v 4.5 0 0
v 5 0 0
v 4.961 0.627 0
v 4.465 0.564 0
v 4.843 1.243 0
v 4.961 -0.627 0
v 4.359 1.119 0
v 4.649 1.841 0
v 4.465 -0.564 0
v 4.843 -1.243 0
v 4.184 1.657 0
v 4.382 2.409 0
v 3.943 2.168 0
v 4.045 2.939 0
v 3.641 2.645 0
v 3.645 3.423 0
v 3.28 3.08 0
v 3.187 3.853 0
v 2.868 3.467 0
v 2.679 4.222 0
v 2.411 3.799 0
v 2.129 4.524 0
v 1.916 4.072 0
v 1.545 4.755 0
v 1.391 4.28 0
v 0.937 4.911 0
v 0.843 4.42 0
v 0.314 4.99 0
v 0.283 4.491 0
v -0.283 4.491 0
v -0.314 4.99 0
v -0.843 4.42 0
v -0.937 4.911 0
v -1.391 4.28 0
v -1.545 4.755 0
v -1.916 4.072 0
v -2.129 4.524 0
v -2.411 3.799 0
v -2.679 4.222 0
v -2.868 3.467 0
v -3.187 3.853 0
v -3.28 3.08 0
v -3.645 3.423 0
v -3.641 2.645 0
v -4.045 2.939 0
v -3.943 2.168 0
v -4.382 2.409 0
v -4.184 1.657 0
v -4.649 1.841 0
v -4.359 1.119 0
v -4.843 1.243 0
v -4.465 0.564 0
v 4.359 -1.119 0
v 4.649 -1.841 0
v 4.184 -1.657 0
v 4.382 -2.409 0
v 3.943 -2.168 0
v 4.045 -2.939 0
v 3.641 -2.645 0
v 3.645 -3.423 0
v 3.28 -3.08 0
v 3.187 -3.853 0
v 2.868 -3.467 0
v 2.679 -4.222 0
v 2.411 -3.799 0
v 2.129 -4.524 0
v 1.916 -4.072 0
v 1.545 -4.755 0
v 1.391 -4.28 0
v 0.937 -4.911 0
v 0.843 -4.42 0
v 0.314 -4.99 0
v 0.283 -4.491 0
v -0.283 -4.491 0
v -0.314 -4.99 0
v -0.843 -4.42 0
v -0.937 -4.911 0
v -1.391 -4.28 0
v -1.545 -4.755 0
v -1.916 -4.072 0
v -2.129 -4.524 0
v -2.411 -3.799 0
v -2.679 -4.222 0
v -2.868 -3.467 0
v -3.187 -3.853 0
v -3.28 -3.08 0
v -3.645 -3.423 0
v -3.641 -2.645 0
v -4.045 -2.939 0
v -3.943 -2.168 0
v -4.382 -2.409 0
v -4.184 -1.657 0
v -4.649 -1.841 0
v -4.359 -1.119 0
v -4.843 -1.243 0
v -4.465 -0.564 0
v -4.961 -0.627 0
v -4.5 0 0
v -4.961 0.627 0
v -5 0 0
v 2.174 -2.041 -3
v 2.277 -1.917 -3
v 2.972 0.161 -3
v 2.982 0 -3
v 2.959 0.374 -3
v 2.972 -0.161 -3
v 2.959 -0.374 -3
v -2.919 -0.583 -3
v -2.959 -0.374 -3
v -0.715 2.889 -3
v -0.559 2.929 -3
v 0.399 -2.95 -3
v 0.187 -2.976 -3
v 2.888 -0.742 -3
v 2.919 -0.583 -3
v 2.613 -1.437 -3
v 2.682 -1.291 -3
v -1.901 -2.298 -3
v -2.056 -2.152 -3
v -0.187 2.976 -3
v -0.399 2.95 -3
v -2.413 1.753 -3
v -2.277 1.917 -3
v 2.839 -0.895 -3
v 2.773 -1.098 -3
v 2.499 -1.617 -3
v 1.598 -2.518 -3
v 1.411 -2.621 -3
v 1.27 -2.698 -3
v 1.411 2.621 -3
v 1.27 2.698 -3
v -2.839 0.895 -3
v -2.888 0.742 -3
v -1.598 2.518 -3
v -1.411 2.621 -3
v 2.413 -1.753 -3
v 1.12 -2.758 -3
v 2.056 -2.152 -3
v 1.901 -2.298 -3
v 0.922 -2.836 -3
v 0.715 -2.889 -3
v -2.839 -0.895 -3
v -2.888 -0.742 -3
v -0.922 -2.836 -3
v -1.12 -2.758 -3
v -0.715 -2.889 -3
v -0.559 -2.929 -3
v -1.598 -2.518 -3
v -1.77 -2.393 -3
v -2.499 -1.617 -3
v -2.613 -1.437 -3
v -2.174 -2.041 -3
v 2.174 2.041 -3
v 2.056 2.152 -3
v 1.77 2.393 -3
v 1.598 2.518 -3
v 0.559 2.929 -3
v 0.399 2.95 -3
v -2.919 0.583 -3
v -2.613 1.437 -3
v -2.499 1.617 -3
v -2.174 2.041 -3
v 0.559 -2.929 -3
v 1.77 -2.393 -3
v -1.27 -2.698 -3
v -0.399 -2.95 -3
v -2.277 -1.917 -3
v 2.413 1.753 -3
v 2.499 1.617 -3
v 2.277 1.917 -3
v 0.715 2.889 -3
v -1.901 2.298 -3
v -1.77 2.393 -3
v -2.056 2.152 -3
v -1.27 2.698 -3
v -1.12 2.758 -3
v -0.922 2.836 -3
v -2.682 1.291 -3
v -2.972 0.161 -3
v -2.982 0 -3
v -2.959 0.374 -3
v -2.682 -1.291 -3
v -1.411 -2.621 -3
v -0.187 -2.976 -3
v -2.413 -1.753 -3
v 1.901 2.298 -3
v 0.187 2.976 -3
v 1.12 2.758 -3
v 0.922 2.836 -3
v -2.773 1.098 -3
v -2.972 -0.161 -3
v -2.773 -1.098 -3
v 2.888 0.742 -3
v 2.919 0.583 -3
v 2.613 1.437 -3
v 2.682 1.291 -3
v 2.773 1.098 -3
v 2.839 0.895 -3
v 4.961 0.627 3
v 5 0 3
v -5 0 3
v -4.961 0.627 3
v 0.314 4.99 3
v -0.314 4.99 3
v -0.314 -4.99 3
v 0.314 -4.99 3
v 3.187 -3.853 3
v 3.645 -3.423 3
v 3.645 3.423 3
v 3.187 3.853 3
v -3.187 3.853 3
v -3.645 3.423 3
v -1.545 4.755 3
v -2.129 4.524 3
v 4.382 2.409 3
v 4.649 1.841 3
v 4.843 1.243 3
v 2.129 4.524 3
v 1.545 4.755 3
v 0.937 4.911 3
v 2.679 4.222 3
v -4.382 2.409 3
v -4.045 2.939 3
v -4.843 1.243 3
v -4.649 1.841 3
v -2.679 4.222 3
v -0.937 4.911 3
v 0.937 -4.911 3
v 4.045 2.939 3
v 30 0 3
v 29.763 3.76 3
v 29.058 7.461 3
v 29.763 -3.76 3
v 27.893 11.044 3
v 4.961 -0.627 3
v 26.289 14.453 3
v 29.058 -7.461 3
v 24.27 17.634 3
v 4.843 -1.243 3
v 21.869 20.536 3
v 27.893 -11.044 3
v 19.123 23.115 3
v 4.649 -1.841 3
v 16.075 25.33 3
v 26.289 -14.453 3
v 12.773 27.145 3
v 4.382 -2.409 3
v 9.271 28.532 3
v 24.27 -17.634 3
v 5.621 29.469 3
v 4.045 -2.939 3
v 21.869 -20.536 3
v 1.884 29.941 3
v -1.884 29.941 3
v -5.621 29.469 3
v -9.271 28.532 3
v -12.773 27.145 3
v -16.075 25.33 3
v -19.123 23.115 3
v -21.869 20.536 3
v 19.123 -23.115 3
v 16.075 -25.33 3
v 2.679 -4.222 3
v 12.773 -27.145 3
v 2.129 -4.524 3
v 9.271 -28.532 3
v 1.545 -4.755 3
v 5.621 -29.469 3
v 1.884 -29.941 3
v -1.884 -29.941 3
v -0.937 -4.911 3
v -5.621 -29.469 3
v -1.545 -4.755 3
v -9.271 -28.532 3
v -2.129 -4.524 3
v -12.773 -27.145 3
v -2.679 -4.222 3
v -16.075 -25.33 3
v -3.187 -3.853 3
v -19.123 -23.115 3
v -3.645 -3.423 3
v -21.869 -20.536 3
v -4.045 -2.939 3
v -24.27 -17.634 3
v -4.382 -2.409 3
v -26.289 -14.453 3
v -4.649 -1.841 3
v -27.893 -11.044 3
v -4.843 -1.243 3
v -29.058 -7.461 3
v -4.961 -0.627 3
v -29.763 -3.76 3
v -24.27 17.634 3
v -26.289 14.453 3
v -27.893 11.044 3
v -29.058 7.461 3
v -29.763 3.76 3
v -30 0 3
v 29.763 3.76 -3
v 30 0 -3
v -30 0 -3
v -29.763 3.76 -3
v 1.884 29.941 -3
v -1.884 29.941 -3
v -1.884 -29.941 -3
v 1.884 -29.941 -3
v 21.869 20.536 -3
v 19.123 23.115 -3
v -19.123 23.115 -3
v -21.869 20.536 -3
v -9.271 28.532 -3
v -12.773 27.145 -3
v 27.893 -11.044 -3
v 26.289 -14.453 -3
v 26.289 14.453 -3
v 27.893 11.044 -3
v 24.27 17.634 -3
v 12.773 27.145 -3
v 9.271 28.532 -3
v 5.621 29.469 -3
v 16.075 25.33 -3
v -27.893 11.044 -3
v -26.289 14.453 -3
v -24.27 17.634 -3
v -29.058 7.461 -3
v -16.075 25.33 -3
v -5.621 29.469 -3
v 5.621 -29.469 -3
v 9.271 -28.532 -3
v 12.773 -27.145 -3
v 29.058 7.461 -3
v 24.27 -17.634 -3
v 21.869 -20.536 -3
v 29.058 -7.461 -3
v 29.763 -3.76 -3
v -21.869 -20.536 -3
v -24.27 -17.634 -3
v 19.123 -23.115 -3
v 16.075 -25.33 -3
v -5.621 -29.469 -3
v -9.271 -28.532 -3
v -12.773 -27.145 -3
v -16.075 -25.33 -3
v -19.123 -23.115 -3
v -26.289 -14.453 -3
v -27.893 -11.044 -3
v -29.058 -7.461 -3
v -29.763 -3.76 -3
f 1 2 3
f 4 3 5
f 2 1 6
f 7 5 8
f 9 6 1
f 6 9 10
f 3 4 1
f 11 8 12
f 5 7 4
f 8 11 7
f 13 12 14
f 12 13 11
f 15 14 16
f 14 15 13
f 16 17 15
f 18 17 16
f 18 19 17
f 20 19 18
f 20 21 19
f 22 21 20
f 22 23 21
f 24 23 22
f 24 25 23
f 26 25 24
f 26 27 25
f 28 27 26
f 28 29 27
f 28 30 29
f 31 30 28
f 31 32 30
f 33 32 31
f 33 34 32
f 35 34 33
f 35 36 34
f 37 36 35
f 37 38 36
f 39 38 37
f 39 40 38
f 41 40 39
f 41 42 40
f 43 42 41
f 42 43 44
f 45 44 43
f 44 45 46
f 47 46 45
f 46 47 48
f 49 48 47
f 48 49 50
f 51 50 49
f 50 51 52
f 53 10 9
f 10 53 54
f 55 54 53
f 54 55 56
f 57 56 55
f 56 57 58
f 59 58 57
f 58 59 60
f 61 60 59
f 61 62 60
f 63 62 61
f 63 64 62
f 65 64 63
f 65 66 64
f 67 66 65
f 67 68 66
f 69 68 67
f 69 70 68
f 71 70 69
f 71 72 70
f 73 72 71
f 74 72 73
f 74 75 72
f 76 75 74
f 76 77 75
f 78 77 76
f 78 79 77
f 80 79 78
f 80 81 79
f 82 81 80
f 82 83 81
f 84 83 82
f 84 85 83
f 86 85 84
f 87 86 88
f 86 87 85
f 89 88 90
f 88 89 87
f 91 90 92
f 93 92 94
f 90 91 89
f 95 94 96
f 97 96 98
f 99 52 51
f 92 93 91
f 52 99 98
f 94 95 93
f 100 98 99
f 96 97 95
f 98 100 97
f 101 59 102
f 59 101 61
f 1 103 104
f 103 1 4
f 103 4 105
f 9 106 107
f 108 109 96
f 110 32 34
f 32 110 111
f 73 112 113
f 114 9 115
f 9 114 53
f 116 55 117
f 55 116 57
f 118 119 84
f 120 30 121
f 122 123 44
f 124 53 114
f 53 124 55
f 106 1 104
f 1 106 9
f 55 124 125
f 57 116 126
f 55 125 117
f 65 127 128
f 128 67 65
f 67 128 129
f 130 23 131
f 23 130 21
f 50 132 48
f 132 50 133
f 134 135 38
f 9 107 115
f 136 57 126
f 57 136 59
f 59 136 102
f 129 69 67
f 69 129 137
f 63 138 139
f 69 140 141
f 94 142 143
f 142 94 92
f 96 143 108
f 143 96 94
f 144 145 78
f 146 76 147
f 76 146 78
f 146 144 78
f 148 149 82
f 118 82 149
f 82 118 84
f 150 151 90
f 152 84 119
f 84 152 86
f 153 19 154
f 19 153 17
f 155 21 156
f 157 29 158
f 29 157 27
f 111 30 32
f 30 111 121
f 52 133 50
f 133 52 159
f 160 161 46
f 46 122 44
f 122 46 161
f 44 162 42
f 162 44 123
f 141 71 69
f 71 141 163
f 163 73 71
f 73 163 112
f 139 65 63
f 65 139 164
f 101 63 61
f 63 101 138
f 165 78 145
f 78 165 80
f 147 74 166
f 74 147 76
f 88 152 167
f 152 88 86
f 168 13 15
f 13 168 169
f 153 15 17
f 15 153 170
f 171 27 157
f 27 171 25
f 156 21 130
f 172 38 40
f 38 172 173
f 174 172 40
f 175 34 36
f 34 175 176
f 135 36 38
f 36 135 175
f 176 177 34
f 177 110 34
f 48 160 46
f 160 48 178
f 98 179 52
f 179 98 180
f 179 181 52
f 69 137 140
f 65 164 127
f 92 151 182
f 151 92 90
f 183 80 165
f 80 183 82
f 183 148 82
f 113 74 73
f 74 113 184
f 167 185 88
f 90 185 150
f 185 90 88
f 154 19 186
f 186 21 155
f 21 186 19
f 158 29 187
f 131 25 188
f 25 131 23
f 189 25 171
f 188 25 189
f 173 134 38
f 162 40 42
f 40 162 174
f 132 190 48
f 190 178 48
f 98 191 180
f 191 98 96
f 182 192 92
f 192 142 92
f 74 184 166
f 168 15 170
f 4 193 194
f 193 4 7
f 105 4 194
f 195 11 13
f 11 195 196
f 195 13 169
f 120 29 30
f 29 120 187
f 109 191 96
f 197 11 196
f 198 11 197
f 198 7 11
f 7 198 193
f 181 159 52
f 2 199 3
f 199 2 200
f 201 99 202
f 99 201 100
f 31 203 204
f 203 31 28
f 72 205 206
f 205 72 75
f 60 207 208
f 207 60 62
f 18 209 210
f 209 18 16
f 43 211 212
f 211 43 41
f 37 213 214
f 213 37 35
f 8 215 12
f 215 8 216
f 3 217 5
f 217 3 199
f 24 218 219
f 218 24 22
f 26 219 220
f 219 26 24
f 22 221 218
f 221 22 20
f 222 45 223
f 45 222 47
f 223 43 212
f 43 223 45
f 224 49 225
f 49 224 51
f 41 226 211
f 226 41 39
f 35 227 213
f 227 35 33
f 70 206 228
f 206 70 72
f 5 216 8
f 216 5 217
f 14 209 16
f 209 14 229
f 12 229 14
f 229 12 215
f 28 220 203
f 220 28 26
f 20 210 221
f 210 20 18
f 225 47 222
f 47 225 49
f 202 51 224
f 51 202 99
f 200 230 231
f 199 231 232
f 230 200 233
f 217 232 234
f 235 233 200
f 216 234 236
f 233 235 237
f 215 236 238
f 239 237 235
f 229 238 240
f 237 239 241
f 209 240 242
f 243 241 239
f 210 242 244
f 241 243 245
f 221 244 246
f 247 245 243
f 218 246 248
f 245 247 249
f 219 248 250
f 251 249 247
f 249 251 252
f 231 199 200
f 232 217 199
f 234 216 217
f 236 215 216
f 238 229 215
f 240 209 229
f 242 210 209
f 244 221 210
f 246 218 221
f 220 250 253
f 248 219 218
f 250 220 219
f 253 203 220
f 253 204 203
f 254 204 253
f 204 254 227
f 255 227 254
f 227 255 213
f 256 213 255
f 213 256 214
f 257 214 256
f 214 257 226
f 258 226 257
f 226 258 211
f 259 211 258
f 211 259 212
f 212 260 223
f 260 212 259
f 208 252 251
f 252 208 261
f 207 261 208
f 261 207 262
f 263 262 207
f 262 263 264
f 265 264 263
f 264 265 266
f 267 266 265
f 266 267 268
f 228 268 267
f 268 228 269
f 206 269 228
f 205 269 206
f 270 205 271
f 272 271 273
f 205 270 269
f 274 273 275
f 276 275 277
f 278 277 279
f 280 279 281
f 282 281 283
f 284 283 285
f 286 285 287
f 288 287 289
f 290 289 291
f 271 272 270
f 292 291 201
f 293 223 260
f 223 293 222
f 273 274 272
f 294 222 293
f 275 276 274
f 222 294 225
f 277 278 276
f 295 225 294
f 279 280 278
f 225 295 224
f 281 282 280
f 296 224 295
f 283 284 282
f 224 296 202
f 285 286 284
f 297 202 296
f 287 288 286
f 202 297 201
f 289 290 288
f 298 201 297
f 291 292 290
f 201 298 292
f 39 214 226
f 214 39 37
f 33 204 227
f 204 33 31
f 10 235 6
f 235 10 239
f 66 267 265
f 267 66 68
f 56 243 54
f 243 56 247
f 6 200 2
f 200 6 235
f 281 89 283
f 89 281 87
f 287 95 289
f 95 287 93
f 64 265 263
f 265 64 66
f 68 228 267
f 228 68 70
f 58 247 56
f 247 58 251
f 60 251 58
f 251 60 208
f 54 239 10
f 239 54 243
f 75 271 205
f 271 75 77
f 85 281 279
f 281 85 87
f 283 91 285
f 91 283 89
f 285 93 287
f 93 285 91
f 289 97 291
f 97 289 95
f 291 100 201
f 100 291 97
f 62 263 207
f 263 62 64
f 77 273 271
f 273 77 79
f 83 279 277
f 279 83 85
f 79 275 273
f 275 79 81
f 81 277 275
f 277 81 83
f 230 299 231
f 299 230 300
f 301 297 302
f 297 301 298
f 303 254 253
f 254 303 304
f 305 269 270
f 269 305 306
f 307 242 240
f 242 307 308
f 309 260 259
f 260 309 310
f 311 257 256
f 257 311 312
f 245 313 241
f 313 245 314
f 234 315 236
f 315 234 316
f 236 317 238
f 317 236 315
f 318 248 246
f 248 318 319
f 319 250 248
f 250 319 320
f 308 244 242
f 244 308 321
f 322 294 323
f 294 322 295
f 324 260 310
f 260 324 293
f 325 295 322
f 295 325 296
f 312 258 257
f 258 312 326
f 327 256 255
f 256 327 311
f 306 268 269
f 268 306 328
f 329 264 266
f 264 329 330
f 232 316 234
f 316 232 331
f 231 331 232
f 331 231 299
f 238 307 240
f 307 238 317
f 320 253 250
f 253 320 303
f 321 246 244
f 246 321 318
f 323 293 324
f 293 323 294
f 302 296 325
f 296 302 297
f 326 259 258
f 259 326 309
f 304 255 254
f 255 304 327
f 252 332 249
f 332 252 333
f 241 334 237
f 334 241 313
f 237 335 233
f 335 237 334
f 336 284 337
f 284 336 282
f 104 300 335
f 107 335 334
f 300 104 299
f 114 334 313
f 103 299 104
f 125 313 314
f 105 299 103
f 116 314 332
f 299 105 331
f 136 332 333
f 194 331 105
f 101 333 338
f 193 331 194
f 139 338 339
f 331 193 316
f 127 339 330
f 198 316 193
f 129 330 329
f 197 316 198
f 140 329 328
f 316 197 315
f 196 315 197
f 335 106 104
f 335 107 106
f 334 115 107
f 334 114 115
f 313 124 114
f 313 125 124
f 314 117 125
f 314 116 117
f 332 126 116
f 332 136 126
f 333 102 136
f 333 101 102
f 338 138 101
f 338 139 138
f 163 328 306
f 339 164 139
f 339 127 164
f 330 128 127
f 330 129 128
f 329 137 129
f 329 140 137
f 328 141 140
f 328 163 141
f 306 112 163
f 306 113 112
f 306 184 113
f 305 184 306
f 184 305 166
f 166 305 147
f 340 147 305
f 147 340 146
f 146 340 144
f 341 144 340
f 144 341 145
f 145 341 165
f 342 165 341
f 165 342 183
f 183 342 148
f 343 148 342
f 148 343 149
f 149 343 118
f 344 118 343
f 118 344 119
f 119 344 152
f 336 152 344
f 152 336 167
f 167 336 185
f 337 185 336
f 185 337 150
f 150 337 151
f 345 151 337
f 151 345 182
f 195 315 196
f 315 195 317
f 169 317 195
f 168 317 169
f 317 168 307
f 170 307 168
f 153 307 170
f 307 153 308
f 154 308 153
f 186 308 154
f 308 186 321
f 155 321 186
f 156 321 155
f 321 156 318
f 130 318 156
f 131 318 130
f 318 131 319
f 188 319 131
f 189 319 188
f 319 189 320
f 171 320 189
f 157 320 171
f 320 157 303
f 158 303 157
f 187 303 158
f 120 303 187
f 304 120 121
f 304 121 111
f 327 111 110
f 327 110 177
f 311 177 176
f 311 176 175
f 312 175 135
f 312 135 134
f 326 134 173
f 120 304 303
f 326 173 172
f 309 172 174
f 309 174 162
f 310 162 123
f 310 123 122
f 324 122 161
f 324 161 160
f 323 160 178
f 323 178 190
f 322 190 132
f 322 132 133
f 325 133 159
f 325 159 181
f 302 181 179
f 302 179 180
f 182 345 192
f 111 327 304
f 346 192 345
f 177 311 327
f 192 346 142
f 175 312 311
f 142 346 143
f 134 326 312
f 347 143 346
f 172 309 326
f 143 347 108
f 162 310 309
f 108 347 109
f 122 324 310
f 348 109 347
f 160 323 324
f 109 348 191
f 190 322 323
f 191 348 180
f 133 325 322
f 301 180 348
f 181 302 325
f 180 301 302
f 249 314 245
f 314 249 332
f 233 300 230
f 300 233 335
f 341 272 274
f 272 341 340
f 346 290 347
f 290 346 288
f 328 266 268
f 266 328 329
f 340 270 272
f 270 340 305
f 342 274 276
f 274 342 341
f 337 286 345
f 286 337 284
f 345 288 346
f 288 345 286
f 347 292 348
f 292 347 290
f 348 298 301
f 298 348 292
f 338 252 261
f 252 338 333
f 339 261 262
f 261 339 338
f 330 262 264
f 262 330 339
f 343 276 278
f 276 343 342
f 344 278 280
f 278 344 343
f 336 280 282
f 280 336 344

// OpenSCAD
$fn = 50;

difference() {
	union() {
		translate(v = [0, 0, -3.0]) {
			cylinder(h = 6, r = 30.0);
		}
	}
	union() {
		translate(v = [0, 0, 0]) {
			rotate(a = [0, 0, 0]) {
				difference() {
					union() {
						translate(v = [0, 0, -6.0]) {
							cylinder(h = 6, r = 2.25);
						}
						translate(v = [0, 0, -4.2]) {
							cylinder(h = 4.2, r1 = 2.375, r2 = 4.5);
						}
						translate(v = [0, 0, -6.0]) {
							cylinder(h = 6, r = 2.375);
						}
						translate(v = [0, 0, -6.0]) {
							cylinder(h = 6, r = 2.25);
						}
					}
					union();
				}
			}
		}
		#cylinder(h = 3, r = 5.0);
	}
}
